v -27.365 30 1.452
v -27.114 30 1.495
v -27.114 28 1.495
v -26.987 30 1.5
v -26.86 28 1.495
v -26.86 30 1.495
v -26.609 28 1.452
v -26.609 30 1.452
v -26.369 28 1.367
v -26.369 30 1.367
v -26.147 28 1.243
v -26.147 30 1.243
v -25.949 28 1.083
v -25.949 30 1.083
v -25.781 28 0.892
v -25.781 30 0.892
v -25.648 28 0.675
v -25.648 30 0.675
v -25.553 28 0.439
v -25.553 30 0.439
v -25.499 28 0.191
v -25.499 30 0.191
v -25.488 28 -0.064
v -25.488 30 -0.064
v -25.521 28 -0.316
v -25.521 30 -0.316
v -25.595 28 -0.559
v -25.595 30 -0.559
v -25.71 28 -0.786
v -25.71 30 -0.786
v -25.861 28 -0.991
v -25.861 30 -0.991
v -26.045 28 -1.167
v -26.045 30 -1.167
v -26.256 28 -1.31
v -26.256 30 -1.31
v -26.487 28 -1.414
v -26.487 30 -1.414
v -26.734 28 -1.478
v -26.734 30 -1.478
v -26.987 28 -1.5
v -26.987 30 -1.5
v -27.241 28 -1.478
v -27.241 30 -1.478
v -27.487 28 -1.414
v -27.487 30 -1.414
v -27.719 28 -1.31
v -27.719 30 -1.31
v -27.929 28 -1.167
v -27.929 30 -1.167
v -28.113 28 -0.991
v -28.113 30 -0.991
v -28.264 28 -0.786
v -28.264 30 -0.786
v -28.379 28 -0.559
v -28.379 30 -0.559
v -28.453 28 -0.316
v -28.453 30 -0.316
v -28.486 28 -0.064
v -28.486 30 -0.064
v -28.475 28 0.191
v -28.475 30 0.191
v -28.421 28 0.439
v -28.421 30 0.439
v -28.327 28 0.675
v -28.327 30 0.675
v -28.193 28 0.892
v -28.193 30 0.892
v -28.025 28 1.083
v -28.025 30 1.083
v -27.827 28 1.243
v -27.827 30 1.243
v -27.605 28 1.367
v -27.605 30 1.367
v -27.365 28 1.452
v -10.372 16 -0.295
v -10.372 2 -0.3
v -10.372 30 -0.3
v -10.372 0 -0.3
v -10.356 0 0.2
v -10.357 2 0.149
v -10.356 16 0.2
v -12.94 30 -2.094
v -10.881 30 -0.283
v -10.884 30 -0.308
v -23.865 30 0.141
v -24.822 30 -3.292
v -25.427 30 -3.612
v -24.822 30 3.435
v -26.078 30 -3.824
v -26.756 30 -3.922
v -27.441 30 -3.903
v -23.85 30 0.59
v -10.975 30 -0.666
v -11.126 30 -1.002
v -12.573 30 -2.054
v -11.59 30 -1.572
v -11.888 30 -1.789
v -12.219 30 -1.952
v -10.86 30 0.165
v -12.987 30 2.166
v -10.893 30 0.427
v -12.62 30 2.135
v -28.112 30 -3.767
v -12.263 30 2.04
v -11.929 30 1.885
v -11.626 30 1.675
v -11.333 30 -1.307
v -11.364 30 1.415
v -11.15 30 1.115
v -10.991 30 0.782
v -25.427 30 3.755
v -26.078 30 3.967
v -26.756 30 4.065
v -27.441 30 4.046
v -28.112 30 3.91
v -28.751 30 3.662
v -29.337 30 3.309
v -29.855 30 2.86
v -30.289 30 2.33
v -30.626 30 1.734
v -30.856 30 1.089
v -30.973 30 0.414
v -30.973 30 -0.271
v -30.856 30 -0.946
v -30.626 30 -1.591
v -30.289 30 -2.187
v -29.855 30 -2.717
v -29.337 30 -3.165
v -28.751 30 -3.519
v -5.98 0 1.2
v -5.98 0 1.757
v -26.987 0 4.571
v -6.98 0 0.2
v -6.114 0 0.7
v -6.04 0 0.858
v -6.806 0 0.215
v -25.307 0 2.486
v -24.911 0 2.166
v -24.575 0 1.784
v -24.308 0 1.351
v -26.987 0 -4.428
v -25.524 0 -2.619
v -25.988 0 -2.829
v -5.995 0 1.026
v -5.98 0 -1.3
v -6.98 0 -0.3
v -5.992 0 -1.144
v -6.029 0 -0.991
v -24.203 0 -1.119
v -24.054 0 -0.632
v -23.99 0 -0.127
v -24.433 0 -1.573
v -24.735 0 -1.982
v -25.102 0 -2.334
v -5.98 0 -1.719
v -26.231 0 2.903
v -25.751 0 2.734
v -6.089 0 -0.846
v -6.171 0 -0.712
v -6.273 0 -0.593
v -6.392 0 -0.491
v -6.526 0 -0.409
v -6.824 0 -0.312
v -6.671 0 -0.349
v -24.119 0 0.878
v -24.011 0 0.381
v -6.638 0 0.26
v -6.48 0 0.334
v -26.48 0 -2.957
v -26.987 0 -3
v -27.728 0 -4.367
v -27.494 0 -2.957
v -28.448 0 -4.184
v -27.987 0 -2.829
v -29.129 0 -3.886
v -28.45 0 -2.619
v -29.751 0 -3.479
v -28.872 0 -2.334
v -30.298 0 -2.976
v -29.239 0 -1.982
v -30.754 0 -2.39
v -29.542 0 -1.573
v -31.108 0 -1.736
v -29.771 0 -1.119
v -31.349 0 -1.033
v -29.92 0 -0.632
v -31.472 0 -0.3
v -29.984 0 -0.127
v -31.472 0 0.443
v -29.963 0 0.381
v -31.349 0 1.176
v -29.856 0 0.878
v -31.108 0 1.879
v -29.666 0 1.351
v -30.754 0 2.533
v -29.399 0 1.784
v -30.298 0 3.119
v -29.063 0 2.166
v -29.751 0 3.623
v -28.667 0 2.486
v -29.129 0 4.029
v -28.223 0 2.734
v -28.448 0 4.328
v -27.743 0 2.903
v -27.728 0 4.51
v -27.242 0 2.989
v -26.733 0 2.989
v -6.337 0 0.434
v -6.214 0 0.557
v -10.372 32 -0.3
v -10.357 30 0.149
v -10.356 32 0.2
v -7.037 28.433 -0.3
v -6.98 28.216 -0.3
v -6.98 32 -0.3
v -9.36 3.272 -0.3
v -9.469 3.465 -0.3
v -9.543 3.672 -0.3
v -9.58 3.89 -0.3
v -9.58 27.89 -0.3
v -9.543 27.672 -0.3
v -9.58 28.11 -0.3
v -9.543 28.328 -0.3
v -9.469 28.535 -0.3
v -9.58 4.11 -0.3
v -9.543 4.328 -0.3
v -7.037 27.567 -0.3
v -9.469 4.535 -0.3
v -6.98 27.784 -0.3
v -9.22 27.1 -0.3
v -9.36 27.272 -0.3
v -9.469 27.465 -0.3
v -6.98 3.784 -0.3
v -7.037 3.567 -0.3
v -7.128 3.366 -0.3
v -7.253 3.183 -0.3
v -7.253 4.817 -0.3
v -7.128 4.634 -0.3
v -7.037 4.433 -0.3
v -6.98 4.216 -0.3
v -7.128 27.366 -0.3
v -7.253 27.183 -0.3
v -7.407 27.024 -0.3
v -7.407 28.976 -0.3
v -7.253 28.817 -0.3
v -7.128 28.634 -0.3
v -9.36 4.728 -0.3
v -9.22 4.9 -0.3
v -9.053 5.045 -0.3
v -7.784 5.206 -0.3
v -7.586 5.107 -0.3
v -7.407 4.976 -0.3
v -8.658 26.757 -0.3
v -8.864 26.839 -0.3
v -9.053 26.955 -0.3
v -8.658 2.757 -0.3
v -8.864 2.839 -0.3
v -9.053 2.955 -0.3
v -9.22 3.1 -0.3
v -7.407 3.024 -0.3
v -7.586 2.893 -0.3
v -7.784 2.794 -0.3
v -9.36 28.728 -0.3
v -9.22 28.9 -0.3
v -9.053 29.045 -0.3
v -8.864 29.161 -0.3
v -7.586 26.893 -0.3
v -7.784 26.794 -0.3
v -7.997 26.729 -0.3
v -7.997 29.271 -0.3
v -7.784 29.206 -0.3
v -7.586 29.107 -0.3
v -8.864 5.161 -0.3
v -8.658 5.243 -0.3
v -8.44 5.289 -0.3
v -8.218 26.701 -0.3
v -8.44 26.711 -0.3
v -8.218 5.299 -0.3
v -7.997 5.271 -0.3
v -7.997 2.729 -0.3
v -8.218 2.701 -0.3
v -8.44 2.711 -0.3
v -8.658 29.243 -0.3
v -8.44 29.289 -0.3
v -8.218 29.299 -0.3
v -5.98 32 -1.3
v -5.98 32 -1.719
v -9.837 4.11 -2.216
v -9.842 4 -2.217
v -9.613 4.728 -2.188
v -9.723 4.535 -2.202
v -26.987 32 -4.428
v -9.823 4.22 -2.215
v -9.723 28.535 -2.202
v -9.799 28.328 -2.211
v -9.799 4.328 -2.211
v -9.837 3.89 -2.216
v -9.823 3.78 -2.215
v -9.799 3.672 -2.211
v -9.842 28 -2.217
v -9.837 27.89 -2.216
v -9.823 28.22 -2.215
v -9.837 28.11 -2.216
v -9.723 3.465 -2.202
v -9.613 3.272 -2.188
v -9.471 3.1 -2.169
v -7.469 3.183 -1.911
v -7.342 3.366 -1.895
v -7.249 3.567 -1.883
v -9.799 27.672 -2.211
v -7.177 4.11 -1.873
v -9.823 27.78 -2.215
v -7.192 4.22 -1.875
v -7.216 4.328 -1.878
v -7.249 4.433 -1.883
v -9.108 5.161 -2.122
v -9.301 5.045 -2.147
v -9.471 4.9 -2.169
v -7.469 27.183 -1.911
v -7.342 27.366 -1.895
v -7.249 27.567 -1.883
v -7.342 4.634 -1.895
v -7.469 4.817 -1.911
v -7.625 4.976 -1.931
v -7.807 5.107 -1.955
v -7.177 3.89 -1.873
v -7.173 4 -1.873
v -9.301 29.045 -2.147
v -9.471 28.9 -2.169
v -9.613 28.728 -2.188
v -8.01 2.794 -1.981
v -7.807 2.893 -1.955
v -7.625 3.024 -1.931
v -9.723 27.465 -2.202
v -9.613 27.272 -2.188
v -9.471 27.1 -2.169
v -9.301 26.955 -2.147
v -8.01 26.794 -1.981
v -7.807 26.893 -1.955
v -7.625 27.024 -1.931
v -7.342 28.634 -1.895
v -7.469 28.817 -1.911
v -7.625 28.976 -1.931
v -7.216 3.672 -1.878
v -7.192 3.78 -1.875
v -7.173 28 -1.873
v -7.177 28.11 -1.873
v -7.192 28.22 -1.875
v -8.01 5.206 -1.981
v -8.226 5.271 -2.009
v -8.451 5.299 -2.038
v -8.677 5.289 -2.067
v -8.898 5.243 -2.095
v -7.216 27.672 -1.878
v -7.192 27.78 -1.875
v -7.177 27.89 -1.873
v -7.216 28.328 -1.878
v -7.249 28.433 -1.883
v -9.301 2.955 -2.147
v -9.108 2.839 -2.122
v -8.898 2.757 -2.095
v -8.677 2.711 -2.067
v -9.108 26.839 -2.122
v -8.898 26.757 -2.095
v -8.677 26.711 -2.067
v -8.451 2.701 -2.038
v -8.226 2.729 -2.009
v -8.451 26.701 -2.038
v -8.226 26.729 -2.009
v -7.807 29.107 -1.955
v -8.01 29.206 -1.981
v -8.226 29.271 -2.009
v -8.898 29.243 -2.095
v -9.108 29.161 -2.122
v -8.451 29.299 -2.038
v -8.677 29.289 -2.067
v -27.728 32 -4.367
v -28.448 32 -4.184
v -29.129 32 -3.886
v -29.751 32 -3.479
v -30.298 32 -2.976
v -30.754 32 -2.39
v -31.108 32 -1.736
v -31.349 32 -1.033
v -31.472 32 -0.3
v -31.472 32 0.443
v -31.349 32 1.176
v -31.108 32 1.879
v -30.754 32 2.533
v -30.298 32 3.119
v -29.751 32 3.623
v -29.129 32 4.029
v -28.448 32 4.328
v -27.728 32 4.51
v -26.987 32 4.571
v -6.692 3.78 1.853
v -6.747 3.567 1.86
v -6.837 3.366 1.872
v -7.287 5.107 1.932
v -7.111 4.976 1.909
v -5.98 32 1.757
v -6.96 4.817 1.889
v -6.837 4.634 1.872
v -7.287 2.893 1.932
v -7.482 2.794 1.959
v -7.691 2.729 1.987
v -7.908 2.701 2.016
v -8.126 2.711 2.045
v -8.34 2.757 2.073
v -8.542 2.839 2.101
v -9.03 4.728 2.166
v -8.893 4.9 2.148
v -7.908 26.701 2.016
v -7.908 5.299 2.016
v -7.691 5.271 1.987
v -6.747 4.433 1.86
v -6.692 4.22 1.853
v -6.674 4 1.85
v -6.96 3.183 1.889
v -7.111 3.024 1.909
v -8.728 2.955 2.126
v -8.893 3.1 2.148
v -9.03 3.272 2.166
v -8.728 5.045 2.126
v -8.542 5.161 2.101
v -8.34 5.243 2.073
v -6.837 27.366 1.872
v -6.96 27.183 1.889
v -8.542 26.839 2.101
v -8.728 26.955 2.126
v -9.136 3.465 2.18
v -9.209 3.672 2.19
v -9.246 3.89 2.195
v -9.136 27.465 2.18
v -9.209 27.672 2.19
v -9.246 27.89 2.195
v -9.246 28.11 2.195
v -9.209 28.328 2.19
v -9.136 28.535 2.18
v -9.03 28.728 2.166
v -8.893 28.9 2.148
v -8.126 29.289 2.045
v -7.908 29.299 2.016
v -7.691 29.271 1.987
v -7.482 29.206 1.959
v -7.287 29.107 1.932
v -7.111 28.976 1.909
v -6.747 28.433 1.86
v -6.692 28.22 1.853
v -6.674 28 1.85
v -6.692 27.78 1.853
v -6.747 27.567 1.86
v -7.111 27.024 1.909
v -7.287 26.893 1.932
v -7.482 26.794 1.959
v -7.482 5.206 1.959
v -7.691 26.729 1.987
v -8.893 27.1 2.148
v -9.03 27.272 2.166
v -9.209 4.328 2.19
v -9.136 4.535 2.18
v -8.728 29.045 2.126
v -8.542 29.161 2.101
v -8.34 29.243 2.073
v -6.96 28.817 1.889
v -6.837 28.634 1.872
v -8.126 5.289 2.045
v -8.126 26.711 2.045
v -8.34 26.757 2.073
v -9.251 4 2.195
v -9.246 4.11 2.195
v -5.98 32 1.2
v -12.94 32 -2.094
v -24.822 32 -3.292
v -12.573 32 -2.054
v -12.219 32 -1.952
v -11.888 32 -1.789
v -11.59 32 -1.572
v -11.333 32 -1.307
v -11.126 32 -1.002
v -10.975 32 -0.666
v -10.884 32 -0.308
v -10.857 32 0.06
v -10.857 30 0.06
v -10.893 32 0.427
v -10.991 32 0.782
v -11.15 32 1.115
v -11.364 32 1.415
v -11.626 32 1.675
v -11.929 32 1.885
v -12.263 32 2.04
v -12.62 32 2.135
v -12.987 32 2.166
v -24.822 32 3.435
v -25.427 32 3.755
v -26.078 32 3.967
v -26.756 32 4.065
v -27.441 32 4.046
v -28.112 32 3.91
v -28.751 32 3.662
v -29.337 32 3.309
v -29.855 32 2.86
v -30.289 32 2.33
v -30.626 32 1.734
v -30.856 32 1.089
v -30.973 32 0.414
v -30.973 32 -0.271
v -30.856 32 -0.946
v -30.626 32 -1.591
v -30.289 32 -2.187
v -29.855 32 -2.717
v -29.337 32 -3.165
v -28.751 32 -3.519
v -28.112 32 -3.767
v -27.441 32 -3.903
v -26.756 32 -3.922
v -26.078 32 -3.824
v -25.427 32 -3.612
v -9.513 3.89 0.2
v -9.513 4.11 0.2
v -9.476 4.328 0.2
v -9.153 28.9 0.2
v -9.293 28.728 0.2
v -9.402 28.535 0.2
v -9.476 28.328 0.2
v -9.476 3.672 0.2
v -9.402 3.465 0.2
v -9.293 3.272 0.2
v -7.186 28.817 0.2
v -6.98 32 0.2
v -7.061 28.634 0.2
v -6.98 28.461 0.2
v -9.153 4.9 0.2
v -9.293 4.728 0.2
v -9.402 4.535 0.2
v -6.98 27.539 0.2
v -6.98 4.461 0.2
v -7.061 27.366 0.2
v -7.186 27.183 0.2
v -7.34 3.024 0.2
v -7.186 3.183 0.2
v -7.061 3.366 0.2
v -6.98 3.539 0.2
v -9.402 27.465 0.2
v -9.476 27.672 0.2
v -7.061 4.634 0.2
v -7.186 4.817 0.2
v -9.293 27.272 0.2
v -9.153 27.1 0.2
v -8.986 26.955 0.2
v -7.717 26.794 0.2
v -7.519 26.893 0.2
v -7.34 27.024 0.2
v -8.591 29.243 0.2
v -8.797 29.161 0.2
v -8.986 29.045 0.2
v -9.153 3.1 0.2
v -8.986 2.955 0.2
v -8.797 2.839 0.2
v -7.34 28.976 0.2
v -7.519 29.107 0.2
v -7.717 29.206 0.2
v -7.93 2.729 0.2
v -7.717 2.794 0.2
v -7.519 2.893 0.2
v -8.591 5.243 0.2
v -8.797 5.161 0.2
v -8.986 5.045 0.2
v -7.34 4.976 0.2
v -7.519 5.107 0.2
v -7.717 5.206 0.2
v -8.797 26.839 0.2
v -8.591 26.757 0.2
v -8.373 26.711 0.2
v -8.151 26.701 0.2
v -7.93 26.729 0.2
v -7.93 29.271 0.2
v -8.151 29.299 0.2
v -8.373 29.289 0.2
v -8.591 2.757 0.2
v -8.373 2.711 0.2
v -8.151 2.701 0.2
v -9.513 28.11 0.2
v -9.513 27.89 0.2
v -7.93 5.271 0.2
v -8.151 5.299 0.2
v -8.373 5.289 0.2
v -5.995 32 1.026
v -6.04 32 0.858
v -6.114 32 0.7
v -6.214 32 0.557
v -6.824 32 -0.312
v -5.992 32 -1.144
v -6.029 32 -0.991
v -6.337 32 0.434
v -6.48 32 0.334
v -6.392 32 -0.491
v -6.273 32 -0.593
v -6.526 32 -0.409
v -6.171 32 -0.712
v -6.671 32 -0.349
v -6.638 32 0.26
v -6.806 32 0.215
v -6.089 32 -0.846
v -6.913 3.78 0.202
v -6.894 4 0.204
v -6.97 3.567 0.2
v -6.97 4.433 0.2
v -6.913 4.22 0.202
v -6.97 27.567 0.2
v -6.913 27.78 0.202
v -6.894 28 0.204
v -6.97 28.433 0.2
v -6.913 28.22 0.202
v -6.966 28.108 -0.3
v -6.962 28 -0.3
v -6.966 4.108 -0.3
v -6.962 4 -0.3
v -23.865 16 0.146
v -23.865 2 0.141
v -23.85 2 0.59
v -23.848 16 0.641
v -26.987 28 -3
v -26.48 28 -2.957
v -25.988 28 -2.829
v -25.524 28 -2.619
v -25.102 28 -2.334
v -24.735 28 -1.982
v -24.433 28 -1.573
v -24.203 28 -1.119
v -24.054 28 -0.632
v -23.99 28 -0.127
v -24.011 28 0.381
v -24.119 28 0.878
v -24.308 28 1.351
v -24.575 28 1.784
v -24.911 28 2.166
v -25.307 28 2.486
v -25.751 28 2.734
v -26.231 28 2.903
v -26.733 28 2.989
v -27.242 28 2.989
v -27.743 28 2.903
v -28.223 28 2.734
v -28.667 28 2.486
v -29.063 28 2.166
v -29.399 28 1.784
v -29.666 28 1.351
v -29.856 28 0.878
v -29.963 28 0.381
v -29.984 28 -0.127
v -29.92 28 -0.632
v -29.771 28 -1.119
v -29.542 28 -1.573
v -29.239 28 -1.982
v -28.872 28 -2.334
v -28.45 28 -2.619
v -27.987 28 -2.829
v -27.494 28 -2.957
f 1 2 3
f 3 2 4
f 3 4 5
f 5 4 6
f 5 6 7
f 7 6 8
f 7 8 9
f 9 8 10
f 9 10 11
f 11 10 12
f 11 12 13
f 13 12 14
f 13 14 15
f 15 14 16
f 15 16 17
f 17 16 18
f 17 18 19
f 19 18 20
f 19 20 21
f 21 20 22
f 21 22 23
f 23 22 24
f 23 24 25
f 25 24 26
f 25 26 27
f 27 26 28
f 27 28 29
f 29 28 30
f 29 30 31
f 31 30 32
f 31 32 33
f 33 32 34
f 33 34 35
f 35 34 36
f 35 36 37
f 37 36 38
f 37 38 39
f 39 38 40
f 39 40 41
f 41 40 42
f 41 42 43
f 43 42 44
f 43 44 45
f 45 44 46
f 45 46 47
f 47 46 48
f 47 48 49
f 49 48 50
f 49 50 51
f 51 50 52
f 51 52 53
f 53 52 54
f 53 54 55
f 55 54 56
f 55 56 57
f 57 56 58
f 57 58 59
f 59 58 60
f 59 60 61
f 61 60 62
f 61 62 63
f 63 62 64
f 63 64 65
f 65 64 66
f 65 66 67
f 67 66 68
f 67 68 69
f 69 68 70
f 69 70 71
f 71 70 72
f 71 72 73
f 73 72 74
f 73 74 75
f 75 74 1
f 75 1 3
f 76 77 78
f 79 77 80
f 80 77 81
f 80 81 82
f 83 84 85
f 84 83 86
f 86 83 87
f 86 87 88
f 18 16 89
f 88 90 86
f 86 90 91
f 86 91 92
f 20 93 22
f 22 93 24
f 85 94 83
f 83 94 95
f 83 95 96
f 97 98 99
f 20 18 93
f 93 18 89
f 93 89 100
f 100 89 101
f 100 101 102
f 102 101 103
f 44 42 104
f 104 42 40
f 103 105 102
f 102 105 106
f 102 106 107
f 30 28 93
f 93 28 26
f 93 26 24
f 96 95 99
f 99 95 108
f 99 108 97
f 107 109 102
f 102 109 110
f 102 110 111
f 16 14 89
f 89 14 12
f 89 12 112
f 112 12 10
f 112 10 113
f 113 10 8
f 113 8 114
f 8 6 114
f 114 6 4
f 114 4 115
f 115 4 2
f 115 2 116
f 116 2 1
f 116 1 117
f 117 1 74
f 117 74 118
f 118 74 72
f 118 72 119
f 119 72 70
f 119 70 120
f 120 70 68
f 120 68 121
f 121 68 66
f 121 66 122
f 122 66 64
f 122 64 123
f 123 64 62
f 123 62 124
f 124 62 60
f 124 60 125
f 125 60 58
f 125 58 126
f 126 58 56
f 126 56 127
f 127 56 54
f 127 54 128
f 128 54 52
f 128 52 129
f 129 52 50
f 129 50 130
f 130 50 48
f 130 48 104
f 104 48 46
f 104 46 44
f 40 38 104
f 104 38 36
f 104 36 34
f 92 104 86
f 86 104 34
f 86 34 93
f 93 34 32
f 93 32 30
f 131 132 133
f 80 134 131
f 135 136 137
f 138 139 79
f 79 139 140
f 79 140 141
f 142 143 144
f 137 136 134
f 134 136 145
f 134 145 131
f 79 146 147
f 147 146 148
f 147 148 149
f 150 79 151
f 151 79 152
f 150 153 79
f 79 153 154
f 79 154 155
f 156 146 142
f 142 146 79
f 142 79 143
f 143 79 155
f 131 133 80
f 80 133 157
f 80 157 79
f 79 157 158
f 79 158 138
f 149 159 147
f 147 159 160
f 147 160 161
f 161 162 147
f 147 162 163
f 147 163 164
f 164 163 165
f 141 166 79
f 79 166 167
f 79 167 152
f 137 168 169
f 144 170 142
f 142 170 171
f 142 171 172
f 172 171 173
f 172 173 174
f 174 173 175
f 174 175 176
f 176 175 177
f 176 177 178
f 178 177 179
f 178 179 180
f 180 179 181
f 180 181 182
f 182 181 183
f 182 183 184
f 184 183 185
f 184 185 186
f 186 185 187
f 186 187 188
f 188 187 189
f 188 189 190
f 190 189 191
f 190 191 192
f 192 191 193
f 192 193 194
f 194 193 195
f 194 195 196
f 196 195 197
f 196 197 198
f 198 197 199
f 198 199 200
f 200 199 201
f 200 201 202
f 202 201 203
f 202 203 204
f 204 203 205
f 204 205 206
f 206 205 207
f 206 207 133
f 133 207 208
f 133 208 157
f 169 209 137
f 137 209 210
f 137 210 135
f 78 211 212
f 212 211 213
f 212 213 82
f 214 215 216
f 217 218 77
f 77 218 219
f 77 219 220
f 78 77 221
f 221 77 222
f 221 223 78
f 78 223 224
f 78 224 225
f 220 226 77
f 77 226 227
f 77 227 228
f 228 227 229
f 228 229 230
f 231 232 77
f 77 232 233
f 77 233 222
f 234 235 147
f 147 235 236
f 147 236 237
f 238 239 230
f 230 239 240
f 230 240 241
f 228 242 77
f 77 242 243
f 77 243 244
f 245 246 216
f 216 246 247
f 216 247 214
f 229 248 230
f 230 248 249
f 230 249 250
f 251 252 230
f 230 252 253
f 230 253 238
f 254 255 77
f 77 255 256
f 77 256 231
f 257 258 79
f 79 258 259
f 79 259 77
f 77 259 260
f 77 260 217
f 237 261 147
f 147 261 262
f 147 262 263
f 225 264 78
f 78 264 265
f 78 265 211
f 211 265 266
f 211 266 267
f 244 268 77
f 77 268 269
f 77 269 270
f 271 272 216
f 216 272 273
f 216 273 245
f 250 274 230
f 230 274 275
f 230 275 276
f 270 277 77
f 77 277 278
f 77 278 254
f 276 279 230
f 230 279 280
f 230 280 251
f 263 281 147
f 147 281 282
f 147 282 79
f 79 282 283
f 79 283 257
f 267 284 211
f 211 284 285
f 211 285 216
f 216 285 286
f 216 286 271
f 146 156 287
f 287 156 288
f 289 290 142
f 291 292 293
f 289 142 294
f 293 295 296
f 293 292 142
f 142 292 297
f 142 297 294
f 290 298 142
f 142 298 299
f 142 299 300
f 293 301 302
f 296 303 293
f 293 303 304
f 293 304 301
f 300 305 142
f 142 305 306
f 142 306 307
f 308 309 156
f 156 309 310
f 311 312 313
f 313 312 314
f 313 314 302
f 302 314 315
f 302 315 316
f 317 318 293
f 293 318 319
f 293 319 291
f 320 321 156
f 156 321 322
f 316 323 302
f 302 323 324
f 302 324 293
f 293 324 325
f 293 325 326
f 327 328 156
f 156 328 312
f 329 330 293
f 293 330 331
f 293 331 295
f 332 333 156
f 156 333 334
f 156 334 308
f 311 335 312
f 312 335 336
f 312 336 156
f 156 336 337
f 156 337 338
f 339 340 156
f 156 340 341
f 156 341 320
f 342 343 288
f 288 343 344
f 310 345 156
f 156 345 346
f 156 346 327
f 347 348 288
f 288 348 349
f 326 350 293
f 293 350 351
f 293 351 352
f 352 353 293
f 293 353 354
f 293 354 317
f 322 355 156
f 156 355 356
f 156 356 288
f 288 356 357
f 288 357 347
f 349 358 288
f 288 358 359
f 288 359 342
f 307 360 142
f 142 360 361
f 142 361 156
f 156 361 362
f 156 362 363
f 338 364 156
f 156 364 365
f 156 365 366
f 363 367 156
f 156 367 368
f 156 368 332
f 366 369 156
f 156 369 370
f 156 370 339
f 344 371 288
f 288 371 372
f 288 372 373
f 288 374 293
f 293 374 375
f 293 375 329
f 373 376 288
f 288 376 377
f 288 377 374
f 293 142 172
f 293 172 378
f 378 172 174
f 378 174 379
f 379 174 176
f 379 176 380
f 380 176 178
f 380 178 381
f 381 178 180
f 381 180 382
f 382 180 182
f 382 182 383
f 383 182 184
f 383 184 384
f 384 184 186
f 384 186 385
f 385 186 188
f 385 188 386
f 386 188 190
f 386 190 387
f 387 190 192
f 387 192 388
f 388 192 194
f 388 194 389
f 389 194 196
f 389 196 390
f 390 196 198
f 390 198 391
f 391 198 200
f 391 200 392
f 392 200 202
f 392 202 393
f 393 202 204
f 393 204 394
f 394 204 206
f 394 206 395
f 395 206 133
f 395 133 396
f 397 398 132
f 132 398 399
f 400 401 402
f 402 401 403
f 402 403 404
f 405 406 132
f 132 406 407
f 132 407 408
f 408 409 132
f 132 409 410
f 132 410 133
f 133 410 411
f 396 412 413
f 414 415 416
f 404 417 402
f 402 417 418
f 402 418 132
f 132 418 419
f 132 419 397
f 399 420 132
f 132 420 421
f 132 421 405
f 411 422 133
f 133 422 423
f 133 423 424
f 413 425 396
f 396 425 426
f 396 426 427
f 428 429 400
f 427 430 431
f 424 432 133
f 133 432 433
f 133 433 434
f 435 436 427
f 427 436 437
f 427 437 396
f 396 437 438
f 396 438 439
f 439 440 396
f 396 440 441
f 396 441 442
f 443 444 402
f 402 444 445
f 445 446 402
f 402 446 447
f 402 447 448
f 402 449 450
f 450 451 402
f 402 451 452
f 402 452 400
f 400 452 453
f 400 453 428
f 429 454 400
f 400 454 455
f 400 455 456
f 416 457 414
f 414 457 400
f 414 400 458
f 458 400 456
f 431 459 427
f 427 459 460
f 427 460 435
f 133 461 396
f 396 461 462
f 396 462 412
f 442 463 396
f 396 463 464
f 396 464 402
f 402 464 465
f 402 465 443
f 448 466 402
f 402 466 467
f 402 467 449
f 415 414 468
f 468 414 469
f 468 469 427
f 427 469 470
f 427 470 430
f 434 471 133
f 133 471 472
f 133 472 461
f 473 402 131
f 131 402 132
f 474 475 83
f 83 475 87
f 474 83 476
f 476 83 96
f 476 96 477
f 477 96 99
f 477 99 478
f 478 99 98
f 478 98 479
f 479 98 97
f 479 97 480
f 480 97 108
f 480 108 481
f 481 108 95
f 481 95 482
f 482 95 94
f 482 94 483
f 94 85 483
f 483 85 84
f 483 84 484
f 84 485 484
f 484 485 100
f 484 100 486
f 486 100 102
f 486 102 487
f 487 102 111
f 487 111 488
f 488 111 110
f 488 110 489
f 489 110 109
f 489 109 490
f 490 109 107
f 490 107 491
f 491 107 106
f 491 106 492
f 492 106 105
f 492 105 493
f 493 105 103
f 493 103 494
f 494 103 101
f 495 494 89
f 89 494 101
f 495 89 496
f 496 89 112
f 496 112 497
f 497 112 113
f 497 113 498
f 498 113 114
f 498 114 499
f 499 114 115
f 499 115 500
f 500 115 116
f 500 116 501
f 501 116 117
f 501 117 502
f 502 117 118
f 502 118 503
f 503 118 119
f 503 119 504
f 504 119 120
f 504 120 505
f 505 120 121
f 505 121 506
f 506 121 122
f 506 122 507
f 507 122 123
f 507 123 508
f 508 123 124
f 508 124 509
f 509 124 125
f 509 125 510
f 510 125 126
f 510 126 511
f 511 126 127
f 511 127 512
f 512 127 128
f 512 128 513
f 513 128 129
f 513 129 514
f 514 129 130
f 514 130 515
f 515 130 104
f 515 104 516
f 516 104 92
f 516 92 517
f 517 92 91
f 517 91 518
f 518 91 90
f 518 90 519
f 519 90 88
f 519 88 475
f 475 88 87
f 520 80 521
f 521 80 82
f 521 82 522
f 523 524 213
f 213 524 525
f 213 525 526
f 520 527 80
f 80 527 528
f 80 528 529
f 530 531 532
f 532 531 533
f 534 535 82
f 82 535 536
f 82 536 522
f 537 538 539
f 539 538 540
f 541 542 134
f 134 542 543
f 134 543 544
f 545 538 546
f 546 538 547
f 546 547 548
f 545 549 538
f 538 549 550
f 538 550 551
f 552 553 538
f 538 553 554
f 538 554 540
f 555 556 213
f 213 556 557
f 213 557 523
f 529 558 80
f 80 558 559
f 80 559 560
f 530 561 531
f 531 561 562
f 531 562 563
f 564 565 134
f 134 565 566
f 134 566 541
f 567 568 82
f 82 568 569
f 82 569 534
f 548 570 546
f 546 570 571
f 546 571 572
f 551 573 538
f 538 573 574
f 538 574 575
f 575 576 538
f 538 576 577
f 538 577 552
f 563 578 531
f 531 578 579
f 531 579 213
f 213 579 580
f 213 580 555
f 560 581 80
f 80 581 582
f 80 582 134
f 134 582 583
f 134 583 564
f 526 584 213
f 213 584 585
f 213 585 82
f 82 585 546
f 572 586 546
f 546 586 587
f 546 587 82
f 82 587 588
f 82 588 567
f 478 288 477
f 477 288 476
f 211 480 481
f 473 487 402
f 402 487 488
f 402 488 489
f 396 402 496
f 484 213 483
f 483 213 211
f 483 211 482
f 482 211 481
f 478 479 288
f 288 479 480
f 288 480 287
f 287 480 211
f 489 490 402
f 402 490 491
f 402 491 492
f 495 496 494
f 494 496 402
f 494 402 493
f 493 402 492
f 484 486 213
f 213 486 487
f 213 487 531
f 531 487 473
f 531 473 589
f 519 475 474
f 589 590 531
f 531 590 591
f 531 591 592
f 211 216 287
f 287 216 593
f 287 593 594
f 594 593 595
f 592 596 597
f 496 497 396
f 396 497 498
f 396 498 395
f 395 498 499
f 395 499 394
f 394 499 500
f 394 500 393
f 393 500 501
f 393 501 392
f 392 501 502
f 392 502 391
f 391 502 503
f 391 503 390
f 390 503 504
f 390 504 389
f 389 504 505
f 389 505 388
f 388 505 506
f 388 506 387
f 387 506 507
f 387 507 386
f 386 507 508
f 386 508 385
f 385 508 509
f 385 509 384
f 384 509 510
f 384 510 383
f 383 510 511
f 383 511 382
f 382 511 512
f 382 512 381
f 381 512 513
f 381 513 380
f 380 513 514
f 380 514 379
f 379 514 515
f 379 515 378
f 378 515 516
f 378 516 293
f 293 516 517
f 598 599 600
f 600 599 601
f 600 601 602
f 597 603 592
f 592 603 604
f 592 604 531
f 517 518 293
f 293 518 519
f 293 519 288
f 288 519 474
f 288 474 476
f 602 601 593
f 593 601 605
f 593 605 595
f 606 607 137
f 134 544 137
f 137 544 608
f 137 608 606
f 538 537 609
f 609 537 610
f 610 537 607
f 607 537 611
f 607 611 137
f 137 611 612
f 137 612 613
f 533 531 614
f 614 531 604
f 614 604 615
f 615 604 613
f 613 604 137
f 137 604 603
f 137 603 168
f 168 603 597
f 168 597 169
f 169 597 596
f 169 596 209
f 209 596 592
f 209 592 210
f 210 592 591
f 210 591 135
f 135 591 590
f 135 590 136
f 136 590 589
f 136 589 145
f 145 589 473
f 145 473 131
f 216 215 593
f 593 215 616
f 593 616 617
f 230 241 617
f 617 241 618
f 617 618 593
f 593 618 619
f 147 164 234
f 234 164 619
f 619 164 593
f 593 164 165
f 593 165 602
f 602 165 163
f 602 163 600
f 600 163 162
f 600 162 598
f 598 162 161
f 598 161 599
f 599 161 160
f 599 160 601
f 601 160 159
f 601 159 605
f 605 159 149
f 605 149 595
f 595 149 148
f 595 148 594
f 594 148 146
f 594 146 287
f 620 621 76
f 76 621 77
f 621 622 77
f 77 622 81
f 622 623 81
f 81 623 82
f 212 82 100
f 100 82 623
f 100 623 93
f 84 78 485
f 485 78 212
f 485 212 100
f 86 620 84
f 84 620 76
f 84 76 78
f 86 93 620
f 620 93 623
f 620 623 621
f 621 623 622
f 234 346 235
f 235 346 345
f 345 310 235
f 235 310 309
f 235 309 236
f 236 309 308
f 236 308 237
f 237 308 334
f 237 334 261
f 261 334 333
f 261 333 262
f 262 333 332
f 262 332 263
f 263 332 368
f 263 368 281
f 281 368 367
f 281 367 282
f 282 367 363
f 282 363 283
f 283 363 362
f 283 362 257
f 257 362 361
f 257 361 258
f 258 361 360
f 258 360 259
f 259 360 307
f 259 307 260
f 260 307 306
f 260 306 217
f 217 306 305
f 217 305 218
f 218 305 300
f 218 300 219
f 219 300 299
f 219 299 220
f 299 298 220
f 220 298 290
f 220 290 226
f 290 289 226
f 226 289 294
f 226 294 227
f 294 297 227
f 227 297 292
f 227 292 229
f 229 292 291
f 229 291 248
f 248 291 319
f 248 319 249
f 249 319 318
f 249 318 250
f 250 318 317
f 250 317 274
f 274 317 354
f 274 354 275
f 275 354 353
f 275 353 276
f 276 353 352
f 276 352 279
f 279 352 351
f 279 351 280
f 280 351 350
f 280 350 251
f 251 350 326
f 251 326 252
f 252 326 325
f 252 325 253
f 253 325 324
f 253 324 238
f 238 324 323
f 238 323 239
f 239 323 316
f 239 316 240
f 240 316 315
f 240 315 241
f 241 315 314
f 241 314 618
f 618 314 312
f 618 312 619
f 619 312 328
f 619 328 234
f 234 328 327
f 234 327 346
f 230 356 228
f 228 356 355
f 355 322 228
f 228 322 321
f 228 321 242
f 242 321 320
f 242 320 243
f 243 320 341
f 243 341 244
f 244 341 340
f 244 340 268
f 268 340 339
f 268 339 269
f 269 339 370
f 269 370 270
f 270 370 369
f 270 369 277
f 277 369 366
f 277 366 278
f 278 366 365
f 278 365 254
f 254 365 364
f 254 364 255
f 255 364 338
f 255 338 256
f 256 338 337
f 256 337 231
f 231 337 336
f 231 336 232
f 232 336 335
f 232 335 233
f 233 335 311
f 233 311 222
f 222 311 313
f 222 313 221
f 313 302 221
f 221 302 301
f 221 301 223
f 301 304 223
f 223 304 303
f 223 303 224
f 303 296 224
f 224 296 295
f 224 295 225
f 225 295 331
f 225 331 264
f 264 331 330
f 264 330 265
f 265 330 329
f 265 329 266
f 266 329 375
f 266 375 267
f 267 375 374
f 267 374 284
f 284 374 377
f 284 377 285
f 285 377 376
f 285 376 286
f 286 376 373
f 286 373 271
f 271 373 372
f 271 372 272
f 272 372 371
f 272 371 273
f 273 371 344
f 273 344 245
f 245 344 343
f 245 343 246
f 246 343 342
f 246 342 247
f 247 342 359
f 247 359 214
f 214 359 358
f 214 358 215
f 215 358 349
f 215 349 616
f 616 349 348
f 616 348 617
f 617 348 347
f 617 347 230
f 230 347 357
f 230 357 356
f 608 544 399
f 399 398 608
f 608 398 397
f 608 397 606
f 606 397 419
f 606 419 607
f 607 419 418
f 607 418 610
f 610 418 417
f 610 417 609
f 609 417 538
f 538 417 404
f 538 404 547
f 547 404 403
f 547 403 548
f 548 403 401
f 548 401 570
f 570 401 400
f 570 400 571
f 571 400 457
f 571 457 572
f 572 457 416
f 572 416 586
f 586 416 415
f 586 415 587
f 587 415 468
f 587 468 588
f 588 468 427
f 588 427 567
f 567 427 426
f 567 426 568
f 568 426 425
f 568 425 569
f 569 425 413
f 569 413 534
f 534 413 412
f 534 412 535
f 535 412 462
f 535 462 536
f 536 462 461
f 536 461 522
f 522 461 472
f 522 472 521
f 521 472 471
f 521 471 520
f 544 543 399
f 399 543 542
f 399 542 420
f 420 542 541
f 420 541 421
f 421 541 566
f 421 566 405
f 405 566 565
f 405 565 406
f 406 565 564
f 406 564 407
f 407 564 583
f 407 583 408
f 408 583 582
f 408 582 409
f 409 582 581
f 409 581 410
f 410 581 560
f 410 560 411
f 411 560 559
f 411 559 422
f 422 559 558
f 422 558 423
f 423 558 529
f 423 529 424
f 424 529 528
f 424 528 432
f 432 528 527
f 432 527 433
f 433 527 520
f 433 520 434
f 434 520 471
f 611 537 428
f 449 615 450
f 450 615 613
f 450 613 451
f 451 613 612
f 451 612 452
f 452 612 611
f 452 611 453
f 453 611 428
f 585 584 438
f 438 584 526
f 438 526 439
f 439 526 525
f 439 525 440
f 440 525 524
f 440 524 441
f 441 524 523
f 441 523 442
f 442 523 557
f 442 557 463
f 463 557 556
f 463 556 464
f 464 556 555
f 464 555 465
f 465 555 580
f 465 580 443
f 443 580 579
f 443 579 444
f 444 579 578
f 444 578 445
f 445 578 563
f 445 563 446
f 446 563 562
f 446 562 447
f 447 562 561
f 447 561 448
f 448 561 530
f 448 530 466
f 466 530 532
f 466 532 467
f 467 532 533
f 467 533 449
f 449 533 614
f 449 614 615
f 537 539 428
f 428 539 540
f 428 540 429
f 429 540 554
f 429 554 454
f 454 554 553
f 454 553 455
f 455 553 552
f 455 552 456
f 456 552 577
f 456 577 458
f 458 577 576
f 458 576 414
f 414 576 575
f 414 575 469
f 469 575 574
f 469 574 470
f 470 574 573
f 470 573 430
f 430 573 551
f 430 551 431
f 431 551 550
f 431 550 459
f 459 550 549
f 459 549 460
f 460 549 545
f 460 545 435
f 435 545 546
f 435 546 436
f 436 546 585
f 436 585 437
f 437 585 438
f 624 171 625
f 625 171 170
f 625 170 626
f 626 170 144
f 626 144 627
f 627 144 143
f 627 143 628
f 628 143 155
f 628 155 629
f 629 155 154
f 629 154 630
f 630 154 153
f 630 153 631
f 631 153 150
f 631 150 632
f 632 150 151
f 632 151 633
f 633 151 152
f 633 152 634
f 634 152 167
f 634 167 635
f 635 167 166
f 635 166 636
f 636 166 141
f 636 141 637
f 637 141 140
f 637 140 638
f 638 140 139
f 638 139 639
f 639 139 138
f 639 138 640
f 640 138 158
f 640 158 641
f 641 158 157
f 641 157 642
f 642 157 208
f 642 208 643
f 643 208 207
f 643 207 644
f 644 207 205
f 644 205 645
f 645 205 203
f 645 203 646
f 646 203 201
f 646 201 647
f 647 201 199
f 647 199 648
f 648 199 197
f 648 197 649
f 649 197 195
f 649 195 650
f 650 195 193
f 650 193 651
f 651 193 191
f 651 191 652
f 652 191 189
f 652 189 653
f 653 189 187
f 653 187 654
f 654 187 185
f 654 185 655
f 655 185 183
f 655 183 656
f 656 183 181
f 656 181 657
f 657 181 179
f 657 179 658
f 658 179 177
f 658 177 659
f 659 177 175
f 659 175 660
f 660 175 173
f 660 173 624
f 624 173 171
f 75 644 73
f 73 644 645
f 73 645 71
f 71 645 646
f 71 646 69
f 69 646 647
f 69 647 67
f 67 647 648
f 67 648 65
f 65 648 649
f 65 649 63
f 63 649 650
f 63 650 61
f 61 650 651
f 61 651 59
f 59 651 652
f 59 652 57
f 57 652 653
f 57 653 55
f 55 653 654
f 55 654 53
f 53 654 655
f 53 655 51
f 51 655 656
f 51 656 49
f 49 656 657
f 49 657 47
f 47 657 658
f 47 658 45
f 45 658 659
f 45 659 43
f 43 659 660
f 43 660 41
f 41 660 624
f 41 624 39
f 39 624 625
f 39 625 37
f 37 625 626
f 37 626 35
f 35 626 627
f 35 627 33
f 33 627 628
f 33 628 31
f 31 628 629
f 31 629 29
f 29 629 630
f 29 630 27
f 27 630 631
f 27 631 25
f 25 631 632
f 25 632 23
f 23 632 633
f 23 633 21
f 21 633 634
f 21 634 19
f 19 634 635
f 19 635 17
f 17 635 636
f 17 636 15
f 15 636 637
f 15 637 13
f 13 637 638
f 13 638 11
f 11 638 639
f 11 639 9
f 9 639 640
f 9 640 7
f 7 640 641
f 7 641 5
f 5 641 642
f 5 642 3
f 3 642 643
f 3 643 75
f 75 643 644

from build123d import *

# Parameters (mm, degrees)
SKETCH2_R           = 1.5
BOSS_EXTRUDE1_DEPTH = 30
BOSS_EXTRUDE2_DEPTH = 32
FILLET3_R           = 1
CUT_EXTRUDE1_DEPTH  = 13.5
SKETCH5_R           = 1.3
CUT_EXTRUDE2_DEPTH  = 46.300984841
SKETCH6_R           = 3
CUT_EXTRUDE3_DEPTH  = 28


with BuildPart() as part:
    # Sketch2 → Boss-Extrude1 (new body)
    with BuildSketch(Plane(origin=(0, 0, 0), x_dir=(1, 0, 0), z_dir=(0, 1, 0))):
        with BuildLine():
            Line((-12.939762178, 2.094266176), (-24.821781773, 3.29179515))
            ThreePointArc((-24.821781773, 3.29179515), (-30.987291256, -0.071668068), (-24.821747911, -3.435069212))
            Line((-24.821747911, -3.435069212), (-12.987160246, -2.166440487))
            ThreePointArc((-12.987160246, -2.166440487), (-10.8566751, -0.059524017), (-12.939762178, 2.094266176))
        make_face()
        with Locations((-26.987114413, 0)):
            Circle(SKETCH2_R, mode=Mode.SUBTRACT)
    extrude(amount=BOSS_EXTRUDE1_DEPTH)

    # Sketch2<3> → Boss-Extrude2 (add)
    with BuildSketch(Plane(origin=(0, 0, 0), x_dir=(1, 0, 0), z_dir=(0, 1, 0))):
        with BuildLine():
            Line((-5.980021524, -1.757335699), (-5.980297938, -0.2))
            Line((-5.980297938, -0.2), (-10.355629468, -0.2))
            Line((-10.355629468, -0.2), (-10.371987074, 0.3))
            Line((-10.371987074, 0.3), (-5.980159731, 0.3))
            Line((-5.980159731, 0.3), (-5.980159731, 1.71899167))
            Line((-5.980159731, 1.71899167), (-26.987114411, 4.428185187))
            ThreePointArc((-26.987114411, 4.428185187), (-31.48694753, -0.071647931), (-26.987114411, -4.57148105))
            Line((-26.987114411, -4.57148105), (-5.980021524, -1.757335699))
        make_face()
        with BuildLine():
            Line((-12.987160246, -2.166440487), (-24.821747911, -3.435069212))
            ThreePointArc((-24.821747911, -3.435069212), (-30.987291256, -0.071668068), (-24.821781773, 3.29179515))
            Line((-24.821781773, 3.29179515), (-12.939762178, 2.094266176))
            ThreePointArc((-12.939762178, 2.094266176), (-10.8566751, -0.059524017), (-12.987160246, -2.166440487))
        make_face(mode=Mode.SUBTRACT)
    extrude(amount=BOSS_EXTRUDE2_DEPTH)

    # Fillet3
    fillet3_edges = [part.edges().sort_by_distance(p)[0] for p in [
        (-5.980297938, 16, 0.2),
        (-5.980159731, 16, -0.3),
    ]]
    fillet(fillet3_edges, radius=FILLET3_R)

    # Sketch4 → Cut-Extrude1 (cut)
    with BuildSketch(Plane(origin=(-10.351093889, 0, 0.338638235), x_dir=(-0.03269771907792328, 0, -0.9994652866243536), z_dir=(0.9994652866243536, 0, -0.03269771907792328))):
        Polygon((0.190205723, 30), (0.138712406, 16), (0.190205723, 2), (0.638979906, 2), (0.634009108, 16), (0.638979906, 30), align=None)
    extrude(amount=-CUT_EXTRUDE1_DEPTH, mode=Mode.SUBTRACT)

    # Sketch5 → Cut-Extrude2 (cut, through all)
    with BuildSketch(Plane(origin=(0.125841463, 0, 0.939384066), x_dir=(0.9911461251188364, 0, -0.1327755951292104), z_dir=(0.1327755951292104, 0, 0.9911461251188365))):
        with Locations((-8.160406455, 28)):
            Circle(SKETCH5_R)
        with Locations((-8.160406455, 4)):
            Circle(SKETCH5_R)
    extrude(amount=-CUT_EXTRUDE2_DEPTH, mode=Mode.SUBTRACT)

    # Sketch6 → Cut-Extrude3 (cut)
    with BuildSketch(Plane.XZ):
        with Locations((-26.987114413, 0)):
            Circle(SKETCH6_R)
    extrude(amount=-CUT_EXTRUDE3_DEPTH, mode=Mode.SUBTRACT)


solid = part.part
